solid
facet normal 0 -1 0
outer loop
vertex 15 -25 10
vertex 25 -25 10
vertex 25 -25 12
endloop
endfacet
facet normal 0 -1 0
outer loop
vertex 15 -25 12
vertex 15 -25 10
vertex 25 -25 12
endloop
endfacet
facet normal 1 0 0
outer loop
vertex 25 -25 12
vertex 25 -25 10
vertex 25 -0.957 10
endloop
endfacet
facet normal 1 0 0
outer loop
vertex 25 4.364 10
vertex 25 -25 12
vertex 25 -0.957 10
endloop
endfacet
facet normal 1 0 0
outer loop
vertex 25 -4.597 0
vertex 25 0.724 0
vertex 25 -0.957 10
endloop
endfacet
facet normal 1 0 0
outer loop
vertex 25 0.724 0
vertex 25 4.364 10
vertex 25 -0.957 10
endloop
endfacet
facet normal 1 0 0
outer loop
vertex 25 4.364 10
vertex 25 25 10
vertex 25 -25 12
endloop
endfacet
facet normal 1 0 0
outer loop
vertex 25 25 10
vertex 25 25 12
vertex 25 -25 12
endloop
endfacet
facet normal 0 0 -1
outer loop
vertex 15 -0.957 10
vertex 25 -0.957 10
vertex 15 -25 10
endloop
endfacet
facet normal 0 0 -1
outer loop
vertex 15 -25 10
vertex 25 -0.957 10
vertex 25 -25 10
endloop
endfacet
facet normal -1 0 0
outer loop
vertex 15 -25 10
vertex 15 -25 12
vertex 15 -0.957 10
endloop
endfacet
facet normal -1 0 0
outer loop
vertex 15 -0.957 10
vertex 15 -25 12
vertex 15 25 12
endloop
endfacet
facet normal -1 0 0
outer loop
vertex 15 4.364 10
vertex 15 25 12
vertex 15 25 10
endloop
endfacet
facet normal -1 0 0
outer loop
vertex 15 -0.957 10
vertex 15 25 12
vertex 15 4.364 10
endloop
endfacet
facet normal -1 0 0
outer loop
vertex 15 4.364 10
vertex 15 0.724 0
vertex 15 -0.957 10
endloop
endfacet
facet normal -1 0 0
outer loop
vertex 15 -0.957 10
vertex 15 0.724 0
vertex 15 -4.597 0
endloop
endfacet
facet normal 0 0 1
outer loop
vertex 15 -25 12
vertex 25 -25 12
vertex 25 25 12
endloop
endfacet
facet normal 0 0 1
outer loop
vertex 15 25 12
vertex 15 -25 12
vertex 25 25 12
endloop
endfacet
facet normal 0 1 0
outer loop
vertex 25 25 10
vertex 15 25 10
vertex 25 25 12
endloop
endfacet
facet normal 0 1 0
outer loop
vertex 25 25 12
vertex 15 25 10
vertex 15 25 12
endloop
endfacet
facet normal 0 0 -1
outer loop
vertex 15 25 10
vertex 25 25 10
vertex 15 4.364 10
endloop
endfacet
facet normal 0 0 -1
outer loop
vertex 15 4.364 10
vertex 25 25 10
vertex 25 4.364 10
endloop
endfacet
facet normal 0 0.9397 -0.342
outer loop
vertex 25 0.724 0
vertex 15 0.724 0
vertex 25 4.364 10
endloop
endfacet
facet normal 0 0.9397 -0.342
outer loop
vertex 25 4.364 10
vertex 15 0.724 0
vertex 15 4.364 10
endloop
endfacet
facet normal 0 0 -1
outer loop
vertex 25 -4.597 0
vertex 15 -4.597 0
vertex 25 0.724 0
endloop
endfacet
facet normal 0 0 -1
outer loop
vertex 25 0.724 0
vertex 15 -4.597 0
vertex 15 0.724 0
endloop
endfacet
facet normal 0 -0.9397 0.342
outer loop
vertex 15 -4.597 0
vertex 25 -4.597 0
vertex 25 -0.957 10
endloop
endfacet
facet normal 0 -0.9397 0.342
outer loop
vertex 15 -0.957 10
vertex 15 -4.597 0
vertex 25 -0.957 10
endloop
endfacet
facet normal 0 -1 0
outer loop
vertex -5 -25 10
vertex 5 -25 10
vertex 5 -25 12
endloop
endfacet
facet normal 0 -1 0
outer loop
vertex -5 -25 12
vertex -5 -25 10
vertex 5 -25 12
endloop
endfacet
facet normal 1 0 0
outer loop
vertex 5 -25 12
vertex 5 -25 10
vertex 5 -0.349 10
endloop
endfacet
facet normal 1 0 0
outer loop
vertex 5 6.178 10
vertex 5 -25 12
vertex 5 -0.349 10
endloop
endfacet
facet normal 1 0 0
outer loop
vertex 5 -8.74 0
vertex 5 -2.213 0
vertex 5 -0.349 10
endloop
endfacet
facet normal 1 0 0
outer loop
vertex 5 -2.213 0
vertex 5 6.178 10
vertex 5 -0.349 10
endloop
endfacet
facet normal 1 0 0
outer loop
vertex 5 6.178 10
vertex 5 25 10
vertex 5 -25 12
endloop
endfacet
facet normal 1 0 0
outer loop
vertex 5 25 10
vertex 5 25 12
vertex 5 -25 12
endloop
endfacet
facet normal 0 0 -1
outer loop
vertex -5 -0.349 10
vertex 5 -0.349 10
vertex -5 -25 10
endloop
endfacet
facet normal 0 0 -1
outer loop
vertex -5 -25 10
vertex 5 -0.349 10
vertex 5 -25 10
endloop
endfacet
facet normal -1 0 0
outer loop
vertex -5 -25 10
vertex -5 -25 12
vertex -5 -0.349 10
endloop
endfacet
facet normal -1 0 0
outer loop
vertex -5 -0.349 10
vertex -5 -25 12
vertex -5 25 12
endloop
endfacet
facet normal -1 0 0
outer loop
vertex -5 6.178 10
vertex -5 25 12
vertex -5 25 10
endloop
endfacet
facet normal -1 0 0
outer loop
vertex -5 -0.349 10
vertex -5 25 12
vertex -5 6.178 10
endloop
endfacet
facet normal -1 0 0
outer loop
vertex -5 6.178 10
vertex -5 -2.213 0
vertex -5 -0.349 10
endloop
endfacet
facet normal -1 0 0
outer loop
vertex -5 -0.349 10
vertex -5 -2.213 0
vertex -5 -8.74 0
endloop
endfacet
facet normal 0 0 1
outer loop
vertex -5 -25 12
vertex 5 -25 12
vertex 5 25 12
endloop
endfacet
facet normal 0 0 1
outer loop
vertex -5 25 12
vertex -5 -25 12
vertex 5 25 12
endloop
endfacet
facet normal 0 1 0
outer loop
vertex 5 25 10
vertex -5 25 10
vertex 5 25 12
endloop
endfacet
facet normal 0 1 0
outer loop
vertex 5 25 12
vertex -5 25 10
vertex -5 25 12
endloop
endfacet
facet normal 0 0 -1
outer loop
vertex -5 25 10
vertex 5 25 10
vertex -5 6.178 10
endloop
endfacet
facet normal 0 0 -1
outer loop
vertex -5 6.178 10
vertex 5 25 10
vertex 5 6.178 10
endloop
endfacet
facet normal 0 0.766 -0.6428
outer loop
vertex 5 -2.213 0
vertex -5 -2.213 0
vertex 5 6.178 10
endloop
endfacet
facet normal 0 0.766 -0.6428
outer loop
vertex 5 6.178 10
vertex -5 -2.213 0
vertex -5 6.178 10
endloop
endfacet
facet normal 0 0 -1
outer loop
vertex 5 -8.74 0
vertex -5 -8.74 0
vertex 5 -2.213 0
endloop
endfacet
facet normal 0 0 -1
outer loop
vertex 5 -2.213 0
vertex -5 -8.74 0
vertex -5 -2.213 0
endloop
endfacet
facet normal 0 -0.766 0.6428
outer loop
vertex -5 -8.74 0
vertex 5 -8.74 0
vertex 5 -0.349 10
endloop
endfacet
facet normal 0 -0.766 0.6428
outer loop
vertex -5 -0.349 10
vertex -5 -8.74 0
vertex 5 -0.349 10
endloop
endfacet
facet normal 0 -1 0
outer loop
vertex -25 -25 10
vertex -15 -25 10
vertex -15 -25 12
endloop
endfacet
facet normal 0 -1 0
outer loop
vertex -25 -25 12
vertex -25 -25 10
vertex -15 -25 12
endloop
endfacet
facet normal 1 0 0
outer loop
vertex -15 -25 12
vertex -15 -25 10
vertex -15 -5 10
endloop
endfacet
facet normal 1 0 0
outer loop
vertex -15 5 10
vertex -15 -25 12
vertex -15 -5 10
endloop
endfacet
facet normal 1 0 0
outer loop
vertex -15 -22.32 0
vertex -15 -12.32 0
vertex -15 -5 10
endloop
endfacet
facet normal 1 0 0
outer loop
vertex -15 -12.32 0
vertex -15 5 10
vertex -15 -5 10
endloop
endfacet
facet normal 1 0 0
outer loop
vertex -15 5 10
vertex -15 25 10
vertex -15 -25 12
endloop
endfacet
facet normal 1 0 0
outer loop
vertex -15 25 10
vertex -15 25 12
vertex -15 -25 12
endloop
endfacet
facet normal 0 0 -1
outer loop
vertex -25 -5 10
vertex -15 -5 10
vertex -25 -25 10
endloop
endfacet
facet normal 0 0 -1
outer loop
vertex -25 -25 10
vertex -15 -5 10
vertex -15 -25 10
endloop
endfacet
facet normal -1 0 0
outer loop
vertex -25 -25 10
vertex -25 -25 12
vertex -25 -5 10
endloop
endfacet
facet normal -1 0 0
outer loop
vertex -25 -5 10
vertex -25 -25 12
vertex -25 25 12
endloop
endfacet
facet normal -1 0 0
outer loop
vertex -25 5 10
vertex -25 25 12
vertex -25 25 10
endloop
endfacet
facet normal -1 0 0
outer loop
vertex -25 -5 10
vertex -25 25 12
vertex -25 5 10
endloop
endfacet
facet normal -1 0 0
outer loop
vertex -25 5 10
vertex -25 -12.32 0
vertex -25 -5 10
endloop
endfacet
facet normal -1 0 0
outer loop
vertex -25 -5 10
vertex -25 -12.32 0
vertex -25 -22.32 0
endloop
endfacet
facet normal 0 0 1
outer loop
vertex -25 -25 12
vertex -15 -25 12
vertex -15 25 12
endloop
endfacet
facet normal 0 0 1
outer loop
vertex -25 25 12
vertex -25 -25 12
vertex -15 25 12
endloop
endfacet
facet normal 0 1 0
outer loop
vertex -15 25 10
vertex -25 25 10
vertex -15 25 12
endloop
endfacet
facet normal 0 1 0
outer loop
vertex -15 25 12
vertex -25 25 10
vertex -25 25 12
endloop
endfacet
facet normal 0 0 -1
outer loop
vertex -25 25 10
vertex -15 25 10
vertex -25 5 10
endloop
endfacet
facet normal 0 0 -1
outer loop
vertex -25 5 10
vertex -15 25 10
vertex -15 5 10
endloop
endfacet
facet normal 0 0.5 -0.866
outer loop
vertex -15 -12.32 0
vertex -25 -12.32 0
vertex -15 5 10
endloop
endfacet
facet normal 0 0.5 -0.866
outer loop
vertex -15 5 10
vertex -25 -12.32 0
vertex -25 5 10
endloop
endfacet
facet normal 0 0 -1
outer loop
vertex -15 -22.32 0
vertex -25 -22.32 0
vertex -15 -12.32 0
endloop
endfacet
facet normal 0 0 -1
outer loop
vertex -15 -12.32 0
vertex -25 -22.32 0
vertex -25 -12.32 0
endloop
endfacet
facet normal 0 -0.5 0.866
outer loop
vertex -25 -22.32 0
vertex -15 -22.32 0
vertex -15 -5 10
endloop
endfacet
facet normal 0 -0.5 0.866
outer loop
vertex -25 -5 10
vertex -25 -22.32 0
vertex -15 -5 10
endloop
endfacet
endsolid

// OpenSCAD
module overhang_test(foundation_xyz, foundation_angle, overhang_xyz){

	foundation_bound=[overhang_xyz[0], overhang_xyz[1], foundation_xyz[2]];
	foundation_z=foundation_xyz[2]/cos(foundation_angle);
	foundation_down=foundation_xyz[0]*sin(foundation_angle);
	union(){
		intersection(){
			translate([0,0,(0.5*foundation_z)-(0.0*foundation_down)])
			rotate([0,foundation_angle,0])
			cube([foundation_xyz[0],foundation_xyz[1],foundation_z*10], center=true);
			translate([0,0,foundation_bound[2]/2])
			cube(foundation_bound, center=true);
		}
		translate([0,0,foundation_xyz[2]+overhang_xyz[2]/2])
		cube(overhang_xyz,center=true);
	}
}

x = 50;
y = 10;
z = 10;
gap = 10;

rotate([0,0,90])
for(i=[0:2]){
	translate([0,(-1*(y+gap))+i*(y+gap),0])
	overhang_test([5,y,z], 20+i*20, [x,y,2]);
}
